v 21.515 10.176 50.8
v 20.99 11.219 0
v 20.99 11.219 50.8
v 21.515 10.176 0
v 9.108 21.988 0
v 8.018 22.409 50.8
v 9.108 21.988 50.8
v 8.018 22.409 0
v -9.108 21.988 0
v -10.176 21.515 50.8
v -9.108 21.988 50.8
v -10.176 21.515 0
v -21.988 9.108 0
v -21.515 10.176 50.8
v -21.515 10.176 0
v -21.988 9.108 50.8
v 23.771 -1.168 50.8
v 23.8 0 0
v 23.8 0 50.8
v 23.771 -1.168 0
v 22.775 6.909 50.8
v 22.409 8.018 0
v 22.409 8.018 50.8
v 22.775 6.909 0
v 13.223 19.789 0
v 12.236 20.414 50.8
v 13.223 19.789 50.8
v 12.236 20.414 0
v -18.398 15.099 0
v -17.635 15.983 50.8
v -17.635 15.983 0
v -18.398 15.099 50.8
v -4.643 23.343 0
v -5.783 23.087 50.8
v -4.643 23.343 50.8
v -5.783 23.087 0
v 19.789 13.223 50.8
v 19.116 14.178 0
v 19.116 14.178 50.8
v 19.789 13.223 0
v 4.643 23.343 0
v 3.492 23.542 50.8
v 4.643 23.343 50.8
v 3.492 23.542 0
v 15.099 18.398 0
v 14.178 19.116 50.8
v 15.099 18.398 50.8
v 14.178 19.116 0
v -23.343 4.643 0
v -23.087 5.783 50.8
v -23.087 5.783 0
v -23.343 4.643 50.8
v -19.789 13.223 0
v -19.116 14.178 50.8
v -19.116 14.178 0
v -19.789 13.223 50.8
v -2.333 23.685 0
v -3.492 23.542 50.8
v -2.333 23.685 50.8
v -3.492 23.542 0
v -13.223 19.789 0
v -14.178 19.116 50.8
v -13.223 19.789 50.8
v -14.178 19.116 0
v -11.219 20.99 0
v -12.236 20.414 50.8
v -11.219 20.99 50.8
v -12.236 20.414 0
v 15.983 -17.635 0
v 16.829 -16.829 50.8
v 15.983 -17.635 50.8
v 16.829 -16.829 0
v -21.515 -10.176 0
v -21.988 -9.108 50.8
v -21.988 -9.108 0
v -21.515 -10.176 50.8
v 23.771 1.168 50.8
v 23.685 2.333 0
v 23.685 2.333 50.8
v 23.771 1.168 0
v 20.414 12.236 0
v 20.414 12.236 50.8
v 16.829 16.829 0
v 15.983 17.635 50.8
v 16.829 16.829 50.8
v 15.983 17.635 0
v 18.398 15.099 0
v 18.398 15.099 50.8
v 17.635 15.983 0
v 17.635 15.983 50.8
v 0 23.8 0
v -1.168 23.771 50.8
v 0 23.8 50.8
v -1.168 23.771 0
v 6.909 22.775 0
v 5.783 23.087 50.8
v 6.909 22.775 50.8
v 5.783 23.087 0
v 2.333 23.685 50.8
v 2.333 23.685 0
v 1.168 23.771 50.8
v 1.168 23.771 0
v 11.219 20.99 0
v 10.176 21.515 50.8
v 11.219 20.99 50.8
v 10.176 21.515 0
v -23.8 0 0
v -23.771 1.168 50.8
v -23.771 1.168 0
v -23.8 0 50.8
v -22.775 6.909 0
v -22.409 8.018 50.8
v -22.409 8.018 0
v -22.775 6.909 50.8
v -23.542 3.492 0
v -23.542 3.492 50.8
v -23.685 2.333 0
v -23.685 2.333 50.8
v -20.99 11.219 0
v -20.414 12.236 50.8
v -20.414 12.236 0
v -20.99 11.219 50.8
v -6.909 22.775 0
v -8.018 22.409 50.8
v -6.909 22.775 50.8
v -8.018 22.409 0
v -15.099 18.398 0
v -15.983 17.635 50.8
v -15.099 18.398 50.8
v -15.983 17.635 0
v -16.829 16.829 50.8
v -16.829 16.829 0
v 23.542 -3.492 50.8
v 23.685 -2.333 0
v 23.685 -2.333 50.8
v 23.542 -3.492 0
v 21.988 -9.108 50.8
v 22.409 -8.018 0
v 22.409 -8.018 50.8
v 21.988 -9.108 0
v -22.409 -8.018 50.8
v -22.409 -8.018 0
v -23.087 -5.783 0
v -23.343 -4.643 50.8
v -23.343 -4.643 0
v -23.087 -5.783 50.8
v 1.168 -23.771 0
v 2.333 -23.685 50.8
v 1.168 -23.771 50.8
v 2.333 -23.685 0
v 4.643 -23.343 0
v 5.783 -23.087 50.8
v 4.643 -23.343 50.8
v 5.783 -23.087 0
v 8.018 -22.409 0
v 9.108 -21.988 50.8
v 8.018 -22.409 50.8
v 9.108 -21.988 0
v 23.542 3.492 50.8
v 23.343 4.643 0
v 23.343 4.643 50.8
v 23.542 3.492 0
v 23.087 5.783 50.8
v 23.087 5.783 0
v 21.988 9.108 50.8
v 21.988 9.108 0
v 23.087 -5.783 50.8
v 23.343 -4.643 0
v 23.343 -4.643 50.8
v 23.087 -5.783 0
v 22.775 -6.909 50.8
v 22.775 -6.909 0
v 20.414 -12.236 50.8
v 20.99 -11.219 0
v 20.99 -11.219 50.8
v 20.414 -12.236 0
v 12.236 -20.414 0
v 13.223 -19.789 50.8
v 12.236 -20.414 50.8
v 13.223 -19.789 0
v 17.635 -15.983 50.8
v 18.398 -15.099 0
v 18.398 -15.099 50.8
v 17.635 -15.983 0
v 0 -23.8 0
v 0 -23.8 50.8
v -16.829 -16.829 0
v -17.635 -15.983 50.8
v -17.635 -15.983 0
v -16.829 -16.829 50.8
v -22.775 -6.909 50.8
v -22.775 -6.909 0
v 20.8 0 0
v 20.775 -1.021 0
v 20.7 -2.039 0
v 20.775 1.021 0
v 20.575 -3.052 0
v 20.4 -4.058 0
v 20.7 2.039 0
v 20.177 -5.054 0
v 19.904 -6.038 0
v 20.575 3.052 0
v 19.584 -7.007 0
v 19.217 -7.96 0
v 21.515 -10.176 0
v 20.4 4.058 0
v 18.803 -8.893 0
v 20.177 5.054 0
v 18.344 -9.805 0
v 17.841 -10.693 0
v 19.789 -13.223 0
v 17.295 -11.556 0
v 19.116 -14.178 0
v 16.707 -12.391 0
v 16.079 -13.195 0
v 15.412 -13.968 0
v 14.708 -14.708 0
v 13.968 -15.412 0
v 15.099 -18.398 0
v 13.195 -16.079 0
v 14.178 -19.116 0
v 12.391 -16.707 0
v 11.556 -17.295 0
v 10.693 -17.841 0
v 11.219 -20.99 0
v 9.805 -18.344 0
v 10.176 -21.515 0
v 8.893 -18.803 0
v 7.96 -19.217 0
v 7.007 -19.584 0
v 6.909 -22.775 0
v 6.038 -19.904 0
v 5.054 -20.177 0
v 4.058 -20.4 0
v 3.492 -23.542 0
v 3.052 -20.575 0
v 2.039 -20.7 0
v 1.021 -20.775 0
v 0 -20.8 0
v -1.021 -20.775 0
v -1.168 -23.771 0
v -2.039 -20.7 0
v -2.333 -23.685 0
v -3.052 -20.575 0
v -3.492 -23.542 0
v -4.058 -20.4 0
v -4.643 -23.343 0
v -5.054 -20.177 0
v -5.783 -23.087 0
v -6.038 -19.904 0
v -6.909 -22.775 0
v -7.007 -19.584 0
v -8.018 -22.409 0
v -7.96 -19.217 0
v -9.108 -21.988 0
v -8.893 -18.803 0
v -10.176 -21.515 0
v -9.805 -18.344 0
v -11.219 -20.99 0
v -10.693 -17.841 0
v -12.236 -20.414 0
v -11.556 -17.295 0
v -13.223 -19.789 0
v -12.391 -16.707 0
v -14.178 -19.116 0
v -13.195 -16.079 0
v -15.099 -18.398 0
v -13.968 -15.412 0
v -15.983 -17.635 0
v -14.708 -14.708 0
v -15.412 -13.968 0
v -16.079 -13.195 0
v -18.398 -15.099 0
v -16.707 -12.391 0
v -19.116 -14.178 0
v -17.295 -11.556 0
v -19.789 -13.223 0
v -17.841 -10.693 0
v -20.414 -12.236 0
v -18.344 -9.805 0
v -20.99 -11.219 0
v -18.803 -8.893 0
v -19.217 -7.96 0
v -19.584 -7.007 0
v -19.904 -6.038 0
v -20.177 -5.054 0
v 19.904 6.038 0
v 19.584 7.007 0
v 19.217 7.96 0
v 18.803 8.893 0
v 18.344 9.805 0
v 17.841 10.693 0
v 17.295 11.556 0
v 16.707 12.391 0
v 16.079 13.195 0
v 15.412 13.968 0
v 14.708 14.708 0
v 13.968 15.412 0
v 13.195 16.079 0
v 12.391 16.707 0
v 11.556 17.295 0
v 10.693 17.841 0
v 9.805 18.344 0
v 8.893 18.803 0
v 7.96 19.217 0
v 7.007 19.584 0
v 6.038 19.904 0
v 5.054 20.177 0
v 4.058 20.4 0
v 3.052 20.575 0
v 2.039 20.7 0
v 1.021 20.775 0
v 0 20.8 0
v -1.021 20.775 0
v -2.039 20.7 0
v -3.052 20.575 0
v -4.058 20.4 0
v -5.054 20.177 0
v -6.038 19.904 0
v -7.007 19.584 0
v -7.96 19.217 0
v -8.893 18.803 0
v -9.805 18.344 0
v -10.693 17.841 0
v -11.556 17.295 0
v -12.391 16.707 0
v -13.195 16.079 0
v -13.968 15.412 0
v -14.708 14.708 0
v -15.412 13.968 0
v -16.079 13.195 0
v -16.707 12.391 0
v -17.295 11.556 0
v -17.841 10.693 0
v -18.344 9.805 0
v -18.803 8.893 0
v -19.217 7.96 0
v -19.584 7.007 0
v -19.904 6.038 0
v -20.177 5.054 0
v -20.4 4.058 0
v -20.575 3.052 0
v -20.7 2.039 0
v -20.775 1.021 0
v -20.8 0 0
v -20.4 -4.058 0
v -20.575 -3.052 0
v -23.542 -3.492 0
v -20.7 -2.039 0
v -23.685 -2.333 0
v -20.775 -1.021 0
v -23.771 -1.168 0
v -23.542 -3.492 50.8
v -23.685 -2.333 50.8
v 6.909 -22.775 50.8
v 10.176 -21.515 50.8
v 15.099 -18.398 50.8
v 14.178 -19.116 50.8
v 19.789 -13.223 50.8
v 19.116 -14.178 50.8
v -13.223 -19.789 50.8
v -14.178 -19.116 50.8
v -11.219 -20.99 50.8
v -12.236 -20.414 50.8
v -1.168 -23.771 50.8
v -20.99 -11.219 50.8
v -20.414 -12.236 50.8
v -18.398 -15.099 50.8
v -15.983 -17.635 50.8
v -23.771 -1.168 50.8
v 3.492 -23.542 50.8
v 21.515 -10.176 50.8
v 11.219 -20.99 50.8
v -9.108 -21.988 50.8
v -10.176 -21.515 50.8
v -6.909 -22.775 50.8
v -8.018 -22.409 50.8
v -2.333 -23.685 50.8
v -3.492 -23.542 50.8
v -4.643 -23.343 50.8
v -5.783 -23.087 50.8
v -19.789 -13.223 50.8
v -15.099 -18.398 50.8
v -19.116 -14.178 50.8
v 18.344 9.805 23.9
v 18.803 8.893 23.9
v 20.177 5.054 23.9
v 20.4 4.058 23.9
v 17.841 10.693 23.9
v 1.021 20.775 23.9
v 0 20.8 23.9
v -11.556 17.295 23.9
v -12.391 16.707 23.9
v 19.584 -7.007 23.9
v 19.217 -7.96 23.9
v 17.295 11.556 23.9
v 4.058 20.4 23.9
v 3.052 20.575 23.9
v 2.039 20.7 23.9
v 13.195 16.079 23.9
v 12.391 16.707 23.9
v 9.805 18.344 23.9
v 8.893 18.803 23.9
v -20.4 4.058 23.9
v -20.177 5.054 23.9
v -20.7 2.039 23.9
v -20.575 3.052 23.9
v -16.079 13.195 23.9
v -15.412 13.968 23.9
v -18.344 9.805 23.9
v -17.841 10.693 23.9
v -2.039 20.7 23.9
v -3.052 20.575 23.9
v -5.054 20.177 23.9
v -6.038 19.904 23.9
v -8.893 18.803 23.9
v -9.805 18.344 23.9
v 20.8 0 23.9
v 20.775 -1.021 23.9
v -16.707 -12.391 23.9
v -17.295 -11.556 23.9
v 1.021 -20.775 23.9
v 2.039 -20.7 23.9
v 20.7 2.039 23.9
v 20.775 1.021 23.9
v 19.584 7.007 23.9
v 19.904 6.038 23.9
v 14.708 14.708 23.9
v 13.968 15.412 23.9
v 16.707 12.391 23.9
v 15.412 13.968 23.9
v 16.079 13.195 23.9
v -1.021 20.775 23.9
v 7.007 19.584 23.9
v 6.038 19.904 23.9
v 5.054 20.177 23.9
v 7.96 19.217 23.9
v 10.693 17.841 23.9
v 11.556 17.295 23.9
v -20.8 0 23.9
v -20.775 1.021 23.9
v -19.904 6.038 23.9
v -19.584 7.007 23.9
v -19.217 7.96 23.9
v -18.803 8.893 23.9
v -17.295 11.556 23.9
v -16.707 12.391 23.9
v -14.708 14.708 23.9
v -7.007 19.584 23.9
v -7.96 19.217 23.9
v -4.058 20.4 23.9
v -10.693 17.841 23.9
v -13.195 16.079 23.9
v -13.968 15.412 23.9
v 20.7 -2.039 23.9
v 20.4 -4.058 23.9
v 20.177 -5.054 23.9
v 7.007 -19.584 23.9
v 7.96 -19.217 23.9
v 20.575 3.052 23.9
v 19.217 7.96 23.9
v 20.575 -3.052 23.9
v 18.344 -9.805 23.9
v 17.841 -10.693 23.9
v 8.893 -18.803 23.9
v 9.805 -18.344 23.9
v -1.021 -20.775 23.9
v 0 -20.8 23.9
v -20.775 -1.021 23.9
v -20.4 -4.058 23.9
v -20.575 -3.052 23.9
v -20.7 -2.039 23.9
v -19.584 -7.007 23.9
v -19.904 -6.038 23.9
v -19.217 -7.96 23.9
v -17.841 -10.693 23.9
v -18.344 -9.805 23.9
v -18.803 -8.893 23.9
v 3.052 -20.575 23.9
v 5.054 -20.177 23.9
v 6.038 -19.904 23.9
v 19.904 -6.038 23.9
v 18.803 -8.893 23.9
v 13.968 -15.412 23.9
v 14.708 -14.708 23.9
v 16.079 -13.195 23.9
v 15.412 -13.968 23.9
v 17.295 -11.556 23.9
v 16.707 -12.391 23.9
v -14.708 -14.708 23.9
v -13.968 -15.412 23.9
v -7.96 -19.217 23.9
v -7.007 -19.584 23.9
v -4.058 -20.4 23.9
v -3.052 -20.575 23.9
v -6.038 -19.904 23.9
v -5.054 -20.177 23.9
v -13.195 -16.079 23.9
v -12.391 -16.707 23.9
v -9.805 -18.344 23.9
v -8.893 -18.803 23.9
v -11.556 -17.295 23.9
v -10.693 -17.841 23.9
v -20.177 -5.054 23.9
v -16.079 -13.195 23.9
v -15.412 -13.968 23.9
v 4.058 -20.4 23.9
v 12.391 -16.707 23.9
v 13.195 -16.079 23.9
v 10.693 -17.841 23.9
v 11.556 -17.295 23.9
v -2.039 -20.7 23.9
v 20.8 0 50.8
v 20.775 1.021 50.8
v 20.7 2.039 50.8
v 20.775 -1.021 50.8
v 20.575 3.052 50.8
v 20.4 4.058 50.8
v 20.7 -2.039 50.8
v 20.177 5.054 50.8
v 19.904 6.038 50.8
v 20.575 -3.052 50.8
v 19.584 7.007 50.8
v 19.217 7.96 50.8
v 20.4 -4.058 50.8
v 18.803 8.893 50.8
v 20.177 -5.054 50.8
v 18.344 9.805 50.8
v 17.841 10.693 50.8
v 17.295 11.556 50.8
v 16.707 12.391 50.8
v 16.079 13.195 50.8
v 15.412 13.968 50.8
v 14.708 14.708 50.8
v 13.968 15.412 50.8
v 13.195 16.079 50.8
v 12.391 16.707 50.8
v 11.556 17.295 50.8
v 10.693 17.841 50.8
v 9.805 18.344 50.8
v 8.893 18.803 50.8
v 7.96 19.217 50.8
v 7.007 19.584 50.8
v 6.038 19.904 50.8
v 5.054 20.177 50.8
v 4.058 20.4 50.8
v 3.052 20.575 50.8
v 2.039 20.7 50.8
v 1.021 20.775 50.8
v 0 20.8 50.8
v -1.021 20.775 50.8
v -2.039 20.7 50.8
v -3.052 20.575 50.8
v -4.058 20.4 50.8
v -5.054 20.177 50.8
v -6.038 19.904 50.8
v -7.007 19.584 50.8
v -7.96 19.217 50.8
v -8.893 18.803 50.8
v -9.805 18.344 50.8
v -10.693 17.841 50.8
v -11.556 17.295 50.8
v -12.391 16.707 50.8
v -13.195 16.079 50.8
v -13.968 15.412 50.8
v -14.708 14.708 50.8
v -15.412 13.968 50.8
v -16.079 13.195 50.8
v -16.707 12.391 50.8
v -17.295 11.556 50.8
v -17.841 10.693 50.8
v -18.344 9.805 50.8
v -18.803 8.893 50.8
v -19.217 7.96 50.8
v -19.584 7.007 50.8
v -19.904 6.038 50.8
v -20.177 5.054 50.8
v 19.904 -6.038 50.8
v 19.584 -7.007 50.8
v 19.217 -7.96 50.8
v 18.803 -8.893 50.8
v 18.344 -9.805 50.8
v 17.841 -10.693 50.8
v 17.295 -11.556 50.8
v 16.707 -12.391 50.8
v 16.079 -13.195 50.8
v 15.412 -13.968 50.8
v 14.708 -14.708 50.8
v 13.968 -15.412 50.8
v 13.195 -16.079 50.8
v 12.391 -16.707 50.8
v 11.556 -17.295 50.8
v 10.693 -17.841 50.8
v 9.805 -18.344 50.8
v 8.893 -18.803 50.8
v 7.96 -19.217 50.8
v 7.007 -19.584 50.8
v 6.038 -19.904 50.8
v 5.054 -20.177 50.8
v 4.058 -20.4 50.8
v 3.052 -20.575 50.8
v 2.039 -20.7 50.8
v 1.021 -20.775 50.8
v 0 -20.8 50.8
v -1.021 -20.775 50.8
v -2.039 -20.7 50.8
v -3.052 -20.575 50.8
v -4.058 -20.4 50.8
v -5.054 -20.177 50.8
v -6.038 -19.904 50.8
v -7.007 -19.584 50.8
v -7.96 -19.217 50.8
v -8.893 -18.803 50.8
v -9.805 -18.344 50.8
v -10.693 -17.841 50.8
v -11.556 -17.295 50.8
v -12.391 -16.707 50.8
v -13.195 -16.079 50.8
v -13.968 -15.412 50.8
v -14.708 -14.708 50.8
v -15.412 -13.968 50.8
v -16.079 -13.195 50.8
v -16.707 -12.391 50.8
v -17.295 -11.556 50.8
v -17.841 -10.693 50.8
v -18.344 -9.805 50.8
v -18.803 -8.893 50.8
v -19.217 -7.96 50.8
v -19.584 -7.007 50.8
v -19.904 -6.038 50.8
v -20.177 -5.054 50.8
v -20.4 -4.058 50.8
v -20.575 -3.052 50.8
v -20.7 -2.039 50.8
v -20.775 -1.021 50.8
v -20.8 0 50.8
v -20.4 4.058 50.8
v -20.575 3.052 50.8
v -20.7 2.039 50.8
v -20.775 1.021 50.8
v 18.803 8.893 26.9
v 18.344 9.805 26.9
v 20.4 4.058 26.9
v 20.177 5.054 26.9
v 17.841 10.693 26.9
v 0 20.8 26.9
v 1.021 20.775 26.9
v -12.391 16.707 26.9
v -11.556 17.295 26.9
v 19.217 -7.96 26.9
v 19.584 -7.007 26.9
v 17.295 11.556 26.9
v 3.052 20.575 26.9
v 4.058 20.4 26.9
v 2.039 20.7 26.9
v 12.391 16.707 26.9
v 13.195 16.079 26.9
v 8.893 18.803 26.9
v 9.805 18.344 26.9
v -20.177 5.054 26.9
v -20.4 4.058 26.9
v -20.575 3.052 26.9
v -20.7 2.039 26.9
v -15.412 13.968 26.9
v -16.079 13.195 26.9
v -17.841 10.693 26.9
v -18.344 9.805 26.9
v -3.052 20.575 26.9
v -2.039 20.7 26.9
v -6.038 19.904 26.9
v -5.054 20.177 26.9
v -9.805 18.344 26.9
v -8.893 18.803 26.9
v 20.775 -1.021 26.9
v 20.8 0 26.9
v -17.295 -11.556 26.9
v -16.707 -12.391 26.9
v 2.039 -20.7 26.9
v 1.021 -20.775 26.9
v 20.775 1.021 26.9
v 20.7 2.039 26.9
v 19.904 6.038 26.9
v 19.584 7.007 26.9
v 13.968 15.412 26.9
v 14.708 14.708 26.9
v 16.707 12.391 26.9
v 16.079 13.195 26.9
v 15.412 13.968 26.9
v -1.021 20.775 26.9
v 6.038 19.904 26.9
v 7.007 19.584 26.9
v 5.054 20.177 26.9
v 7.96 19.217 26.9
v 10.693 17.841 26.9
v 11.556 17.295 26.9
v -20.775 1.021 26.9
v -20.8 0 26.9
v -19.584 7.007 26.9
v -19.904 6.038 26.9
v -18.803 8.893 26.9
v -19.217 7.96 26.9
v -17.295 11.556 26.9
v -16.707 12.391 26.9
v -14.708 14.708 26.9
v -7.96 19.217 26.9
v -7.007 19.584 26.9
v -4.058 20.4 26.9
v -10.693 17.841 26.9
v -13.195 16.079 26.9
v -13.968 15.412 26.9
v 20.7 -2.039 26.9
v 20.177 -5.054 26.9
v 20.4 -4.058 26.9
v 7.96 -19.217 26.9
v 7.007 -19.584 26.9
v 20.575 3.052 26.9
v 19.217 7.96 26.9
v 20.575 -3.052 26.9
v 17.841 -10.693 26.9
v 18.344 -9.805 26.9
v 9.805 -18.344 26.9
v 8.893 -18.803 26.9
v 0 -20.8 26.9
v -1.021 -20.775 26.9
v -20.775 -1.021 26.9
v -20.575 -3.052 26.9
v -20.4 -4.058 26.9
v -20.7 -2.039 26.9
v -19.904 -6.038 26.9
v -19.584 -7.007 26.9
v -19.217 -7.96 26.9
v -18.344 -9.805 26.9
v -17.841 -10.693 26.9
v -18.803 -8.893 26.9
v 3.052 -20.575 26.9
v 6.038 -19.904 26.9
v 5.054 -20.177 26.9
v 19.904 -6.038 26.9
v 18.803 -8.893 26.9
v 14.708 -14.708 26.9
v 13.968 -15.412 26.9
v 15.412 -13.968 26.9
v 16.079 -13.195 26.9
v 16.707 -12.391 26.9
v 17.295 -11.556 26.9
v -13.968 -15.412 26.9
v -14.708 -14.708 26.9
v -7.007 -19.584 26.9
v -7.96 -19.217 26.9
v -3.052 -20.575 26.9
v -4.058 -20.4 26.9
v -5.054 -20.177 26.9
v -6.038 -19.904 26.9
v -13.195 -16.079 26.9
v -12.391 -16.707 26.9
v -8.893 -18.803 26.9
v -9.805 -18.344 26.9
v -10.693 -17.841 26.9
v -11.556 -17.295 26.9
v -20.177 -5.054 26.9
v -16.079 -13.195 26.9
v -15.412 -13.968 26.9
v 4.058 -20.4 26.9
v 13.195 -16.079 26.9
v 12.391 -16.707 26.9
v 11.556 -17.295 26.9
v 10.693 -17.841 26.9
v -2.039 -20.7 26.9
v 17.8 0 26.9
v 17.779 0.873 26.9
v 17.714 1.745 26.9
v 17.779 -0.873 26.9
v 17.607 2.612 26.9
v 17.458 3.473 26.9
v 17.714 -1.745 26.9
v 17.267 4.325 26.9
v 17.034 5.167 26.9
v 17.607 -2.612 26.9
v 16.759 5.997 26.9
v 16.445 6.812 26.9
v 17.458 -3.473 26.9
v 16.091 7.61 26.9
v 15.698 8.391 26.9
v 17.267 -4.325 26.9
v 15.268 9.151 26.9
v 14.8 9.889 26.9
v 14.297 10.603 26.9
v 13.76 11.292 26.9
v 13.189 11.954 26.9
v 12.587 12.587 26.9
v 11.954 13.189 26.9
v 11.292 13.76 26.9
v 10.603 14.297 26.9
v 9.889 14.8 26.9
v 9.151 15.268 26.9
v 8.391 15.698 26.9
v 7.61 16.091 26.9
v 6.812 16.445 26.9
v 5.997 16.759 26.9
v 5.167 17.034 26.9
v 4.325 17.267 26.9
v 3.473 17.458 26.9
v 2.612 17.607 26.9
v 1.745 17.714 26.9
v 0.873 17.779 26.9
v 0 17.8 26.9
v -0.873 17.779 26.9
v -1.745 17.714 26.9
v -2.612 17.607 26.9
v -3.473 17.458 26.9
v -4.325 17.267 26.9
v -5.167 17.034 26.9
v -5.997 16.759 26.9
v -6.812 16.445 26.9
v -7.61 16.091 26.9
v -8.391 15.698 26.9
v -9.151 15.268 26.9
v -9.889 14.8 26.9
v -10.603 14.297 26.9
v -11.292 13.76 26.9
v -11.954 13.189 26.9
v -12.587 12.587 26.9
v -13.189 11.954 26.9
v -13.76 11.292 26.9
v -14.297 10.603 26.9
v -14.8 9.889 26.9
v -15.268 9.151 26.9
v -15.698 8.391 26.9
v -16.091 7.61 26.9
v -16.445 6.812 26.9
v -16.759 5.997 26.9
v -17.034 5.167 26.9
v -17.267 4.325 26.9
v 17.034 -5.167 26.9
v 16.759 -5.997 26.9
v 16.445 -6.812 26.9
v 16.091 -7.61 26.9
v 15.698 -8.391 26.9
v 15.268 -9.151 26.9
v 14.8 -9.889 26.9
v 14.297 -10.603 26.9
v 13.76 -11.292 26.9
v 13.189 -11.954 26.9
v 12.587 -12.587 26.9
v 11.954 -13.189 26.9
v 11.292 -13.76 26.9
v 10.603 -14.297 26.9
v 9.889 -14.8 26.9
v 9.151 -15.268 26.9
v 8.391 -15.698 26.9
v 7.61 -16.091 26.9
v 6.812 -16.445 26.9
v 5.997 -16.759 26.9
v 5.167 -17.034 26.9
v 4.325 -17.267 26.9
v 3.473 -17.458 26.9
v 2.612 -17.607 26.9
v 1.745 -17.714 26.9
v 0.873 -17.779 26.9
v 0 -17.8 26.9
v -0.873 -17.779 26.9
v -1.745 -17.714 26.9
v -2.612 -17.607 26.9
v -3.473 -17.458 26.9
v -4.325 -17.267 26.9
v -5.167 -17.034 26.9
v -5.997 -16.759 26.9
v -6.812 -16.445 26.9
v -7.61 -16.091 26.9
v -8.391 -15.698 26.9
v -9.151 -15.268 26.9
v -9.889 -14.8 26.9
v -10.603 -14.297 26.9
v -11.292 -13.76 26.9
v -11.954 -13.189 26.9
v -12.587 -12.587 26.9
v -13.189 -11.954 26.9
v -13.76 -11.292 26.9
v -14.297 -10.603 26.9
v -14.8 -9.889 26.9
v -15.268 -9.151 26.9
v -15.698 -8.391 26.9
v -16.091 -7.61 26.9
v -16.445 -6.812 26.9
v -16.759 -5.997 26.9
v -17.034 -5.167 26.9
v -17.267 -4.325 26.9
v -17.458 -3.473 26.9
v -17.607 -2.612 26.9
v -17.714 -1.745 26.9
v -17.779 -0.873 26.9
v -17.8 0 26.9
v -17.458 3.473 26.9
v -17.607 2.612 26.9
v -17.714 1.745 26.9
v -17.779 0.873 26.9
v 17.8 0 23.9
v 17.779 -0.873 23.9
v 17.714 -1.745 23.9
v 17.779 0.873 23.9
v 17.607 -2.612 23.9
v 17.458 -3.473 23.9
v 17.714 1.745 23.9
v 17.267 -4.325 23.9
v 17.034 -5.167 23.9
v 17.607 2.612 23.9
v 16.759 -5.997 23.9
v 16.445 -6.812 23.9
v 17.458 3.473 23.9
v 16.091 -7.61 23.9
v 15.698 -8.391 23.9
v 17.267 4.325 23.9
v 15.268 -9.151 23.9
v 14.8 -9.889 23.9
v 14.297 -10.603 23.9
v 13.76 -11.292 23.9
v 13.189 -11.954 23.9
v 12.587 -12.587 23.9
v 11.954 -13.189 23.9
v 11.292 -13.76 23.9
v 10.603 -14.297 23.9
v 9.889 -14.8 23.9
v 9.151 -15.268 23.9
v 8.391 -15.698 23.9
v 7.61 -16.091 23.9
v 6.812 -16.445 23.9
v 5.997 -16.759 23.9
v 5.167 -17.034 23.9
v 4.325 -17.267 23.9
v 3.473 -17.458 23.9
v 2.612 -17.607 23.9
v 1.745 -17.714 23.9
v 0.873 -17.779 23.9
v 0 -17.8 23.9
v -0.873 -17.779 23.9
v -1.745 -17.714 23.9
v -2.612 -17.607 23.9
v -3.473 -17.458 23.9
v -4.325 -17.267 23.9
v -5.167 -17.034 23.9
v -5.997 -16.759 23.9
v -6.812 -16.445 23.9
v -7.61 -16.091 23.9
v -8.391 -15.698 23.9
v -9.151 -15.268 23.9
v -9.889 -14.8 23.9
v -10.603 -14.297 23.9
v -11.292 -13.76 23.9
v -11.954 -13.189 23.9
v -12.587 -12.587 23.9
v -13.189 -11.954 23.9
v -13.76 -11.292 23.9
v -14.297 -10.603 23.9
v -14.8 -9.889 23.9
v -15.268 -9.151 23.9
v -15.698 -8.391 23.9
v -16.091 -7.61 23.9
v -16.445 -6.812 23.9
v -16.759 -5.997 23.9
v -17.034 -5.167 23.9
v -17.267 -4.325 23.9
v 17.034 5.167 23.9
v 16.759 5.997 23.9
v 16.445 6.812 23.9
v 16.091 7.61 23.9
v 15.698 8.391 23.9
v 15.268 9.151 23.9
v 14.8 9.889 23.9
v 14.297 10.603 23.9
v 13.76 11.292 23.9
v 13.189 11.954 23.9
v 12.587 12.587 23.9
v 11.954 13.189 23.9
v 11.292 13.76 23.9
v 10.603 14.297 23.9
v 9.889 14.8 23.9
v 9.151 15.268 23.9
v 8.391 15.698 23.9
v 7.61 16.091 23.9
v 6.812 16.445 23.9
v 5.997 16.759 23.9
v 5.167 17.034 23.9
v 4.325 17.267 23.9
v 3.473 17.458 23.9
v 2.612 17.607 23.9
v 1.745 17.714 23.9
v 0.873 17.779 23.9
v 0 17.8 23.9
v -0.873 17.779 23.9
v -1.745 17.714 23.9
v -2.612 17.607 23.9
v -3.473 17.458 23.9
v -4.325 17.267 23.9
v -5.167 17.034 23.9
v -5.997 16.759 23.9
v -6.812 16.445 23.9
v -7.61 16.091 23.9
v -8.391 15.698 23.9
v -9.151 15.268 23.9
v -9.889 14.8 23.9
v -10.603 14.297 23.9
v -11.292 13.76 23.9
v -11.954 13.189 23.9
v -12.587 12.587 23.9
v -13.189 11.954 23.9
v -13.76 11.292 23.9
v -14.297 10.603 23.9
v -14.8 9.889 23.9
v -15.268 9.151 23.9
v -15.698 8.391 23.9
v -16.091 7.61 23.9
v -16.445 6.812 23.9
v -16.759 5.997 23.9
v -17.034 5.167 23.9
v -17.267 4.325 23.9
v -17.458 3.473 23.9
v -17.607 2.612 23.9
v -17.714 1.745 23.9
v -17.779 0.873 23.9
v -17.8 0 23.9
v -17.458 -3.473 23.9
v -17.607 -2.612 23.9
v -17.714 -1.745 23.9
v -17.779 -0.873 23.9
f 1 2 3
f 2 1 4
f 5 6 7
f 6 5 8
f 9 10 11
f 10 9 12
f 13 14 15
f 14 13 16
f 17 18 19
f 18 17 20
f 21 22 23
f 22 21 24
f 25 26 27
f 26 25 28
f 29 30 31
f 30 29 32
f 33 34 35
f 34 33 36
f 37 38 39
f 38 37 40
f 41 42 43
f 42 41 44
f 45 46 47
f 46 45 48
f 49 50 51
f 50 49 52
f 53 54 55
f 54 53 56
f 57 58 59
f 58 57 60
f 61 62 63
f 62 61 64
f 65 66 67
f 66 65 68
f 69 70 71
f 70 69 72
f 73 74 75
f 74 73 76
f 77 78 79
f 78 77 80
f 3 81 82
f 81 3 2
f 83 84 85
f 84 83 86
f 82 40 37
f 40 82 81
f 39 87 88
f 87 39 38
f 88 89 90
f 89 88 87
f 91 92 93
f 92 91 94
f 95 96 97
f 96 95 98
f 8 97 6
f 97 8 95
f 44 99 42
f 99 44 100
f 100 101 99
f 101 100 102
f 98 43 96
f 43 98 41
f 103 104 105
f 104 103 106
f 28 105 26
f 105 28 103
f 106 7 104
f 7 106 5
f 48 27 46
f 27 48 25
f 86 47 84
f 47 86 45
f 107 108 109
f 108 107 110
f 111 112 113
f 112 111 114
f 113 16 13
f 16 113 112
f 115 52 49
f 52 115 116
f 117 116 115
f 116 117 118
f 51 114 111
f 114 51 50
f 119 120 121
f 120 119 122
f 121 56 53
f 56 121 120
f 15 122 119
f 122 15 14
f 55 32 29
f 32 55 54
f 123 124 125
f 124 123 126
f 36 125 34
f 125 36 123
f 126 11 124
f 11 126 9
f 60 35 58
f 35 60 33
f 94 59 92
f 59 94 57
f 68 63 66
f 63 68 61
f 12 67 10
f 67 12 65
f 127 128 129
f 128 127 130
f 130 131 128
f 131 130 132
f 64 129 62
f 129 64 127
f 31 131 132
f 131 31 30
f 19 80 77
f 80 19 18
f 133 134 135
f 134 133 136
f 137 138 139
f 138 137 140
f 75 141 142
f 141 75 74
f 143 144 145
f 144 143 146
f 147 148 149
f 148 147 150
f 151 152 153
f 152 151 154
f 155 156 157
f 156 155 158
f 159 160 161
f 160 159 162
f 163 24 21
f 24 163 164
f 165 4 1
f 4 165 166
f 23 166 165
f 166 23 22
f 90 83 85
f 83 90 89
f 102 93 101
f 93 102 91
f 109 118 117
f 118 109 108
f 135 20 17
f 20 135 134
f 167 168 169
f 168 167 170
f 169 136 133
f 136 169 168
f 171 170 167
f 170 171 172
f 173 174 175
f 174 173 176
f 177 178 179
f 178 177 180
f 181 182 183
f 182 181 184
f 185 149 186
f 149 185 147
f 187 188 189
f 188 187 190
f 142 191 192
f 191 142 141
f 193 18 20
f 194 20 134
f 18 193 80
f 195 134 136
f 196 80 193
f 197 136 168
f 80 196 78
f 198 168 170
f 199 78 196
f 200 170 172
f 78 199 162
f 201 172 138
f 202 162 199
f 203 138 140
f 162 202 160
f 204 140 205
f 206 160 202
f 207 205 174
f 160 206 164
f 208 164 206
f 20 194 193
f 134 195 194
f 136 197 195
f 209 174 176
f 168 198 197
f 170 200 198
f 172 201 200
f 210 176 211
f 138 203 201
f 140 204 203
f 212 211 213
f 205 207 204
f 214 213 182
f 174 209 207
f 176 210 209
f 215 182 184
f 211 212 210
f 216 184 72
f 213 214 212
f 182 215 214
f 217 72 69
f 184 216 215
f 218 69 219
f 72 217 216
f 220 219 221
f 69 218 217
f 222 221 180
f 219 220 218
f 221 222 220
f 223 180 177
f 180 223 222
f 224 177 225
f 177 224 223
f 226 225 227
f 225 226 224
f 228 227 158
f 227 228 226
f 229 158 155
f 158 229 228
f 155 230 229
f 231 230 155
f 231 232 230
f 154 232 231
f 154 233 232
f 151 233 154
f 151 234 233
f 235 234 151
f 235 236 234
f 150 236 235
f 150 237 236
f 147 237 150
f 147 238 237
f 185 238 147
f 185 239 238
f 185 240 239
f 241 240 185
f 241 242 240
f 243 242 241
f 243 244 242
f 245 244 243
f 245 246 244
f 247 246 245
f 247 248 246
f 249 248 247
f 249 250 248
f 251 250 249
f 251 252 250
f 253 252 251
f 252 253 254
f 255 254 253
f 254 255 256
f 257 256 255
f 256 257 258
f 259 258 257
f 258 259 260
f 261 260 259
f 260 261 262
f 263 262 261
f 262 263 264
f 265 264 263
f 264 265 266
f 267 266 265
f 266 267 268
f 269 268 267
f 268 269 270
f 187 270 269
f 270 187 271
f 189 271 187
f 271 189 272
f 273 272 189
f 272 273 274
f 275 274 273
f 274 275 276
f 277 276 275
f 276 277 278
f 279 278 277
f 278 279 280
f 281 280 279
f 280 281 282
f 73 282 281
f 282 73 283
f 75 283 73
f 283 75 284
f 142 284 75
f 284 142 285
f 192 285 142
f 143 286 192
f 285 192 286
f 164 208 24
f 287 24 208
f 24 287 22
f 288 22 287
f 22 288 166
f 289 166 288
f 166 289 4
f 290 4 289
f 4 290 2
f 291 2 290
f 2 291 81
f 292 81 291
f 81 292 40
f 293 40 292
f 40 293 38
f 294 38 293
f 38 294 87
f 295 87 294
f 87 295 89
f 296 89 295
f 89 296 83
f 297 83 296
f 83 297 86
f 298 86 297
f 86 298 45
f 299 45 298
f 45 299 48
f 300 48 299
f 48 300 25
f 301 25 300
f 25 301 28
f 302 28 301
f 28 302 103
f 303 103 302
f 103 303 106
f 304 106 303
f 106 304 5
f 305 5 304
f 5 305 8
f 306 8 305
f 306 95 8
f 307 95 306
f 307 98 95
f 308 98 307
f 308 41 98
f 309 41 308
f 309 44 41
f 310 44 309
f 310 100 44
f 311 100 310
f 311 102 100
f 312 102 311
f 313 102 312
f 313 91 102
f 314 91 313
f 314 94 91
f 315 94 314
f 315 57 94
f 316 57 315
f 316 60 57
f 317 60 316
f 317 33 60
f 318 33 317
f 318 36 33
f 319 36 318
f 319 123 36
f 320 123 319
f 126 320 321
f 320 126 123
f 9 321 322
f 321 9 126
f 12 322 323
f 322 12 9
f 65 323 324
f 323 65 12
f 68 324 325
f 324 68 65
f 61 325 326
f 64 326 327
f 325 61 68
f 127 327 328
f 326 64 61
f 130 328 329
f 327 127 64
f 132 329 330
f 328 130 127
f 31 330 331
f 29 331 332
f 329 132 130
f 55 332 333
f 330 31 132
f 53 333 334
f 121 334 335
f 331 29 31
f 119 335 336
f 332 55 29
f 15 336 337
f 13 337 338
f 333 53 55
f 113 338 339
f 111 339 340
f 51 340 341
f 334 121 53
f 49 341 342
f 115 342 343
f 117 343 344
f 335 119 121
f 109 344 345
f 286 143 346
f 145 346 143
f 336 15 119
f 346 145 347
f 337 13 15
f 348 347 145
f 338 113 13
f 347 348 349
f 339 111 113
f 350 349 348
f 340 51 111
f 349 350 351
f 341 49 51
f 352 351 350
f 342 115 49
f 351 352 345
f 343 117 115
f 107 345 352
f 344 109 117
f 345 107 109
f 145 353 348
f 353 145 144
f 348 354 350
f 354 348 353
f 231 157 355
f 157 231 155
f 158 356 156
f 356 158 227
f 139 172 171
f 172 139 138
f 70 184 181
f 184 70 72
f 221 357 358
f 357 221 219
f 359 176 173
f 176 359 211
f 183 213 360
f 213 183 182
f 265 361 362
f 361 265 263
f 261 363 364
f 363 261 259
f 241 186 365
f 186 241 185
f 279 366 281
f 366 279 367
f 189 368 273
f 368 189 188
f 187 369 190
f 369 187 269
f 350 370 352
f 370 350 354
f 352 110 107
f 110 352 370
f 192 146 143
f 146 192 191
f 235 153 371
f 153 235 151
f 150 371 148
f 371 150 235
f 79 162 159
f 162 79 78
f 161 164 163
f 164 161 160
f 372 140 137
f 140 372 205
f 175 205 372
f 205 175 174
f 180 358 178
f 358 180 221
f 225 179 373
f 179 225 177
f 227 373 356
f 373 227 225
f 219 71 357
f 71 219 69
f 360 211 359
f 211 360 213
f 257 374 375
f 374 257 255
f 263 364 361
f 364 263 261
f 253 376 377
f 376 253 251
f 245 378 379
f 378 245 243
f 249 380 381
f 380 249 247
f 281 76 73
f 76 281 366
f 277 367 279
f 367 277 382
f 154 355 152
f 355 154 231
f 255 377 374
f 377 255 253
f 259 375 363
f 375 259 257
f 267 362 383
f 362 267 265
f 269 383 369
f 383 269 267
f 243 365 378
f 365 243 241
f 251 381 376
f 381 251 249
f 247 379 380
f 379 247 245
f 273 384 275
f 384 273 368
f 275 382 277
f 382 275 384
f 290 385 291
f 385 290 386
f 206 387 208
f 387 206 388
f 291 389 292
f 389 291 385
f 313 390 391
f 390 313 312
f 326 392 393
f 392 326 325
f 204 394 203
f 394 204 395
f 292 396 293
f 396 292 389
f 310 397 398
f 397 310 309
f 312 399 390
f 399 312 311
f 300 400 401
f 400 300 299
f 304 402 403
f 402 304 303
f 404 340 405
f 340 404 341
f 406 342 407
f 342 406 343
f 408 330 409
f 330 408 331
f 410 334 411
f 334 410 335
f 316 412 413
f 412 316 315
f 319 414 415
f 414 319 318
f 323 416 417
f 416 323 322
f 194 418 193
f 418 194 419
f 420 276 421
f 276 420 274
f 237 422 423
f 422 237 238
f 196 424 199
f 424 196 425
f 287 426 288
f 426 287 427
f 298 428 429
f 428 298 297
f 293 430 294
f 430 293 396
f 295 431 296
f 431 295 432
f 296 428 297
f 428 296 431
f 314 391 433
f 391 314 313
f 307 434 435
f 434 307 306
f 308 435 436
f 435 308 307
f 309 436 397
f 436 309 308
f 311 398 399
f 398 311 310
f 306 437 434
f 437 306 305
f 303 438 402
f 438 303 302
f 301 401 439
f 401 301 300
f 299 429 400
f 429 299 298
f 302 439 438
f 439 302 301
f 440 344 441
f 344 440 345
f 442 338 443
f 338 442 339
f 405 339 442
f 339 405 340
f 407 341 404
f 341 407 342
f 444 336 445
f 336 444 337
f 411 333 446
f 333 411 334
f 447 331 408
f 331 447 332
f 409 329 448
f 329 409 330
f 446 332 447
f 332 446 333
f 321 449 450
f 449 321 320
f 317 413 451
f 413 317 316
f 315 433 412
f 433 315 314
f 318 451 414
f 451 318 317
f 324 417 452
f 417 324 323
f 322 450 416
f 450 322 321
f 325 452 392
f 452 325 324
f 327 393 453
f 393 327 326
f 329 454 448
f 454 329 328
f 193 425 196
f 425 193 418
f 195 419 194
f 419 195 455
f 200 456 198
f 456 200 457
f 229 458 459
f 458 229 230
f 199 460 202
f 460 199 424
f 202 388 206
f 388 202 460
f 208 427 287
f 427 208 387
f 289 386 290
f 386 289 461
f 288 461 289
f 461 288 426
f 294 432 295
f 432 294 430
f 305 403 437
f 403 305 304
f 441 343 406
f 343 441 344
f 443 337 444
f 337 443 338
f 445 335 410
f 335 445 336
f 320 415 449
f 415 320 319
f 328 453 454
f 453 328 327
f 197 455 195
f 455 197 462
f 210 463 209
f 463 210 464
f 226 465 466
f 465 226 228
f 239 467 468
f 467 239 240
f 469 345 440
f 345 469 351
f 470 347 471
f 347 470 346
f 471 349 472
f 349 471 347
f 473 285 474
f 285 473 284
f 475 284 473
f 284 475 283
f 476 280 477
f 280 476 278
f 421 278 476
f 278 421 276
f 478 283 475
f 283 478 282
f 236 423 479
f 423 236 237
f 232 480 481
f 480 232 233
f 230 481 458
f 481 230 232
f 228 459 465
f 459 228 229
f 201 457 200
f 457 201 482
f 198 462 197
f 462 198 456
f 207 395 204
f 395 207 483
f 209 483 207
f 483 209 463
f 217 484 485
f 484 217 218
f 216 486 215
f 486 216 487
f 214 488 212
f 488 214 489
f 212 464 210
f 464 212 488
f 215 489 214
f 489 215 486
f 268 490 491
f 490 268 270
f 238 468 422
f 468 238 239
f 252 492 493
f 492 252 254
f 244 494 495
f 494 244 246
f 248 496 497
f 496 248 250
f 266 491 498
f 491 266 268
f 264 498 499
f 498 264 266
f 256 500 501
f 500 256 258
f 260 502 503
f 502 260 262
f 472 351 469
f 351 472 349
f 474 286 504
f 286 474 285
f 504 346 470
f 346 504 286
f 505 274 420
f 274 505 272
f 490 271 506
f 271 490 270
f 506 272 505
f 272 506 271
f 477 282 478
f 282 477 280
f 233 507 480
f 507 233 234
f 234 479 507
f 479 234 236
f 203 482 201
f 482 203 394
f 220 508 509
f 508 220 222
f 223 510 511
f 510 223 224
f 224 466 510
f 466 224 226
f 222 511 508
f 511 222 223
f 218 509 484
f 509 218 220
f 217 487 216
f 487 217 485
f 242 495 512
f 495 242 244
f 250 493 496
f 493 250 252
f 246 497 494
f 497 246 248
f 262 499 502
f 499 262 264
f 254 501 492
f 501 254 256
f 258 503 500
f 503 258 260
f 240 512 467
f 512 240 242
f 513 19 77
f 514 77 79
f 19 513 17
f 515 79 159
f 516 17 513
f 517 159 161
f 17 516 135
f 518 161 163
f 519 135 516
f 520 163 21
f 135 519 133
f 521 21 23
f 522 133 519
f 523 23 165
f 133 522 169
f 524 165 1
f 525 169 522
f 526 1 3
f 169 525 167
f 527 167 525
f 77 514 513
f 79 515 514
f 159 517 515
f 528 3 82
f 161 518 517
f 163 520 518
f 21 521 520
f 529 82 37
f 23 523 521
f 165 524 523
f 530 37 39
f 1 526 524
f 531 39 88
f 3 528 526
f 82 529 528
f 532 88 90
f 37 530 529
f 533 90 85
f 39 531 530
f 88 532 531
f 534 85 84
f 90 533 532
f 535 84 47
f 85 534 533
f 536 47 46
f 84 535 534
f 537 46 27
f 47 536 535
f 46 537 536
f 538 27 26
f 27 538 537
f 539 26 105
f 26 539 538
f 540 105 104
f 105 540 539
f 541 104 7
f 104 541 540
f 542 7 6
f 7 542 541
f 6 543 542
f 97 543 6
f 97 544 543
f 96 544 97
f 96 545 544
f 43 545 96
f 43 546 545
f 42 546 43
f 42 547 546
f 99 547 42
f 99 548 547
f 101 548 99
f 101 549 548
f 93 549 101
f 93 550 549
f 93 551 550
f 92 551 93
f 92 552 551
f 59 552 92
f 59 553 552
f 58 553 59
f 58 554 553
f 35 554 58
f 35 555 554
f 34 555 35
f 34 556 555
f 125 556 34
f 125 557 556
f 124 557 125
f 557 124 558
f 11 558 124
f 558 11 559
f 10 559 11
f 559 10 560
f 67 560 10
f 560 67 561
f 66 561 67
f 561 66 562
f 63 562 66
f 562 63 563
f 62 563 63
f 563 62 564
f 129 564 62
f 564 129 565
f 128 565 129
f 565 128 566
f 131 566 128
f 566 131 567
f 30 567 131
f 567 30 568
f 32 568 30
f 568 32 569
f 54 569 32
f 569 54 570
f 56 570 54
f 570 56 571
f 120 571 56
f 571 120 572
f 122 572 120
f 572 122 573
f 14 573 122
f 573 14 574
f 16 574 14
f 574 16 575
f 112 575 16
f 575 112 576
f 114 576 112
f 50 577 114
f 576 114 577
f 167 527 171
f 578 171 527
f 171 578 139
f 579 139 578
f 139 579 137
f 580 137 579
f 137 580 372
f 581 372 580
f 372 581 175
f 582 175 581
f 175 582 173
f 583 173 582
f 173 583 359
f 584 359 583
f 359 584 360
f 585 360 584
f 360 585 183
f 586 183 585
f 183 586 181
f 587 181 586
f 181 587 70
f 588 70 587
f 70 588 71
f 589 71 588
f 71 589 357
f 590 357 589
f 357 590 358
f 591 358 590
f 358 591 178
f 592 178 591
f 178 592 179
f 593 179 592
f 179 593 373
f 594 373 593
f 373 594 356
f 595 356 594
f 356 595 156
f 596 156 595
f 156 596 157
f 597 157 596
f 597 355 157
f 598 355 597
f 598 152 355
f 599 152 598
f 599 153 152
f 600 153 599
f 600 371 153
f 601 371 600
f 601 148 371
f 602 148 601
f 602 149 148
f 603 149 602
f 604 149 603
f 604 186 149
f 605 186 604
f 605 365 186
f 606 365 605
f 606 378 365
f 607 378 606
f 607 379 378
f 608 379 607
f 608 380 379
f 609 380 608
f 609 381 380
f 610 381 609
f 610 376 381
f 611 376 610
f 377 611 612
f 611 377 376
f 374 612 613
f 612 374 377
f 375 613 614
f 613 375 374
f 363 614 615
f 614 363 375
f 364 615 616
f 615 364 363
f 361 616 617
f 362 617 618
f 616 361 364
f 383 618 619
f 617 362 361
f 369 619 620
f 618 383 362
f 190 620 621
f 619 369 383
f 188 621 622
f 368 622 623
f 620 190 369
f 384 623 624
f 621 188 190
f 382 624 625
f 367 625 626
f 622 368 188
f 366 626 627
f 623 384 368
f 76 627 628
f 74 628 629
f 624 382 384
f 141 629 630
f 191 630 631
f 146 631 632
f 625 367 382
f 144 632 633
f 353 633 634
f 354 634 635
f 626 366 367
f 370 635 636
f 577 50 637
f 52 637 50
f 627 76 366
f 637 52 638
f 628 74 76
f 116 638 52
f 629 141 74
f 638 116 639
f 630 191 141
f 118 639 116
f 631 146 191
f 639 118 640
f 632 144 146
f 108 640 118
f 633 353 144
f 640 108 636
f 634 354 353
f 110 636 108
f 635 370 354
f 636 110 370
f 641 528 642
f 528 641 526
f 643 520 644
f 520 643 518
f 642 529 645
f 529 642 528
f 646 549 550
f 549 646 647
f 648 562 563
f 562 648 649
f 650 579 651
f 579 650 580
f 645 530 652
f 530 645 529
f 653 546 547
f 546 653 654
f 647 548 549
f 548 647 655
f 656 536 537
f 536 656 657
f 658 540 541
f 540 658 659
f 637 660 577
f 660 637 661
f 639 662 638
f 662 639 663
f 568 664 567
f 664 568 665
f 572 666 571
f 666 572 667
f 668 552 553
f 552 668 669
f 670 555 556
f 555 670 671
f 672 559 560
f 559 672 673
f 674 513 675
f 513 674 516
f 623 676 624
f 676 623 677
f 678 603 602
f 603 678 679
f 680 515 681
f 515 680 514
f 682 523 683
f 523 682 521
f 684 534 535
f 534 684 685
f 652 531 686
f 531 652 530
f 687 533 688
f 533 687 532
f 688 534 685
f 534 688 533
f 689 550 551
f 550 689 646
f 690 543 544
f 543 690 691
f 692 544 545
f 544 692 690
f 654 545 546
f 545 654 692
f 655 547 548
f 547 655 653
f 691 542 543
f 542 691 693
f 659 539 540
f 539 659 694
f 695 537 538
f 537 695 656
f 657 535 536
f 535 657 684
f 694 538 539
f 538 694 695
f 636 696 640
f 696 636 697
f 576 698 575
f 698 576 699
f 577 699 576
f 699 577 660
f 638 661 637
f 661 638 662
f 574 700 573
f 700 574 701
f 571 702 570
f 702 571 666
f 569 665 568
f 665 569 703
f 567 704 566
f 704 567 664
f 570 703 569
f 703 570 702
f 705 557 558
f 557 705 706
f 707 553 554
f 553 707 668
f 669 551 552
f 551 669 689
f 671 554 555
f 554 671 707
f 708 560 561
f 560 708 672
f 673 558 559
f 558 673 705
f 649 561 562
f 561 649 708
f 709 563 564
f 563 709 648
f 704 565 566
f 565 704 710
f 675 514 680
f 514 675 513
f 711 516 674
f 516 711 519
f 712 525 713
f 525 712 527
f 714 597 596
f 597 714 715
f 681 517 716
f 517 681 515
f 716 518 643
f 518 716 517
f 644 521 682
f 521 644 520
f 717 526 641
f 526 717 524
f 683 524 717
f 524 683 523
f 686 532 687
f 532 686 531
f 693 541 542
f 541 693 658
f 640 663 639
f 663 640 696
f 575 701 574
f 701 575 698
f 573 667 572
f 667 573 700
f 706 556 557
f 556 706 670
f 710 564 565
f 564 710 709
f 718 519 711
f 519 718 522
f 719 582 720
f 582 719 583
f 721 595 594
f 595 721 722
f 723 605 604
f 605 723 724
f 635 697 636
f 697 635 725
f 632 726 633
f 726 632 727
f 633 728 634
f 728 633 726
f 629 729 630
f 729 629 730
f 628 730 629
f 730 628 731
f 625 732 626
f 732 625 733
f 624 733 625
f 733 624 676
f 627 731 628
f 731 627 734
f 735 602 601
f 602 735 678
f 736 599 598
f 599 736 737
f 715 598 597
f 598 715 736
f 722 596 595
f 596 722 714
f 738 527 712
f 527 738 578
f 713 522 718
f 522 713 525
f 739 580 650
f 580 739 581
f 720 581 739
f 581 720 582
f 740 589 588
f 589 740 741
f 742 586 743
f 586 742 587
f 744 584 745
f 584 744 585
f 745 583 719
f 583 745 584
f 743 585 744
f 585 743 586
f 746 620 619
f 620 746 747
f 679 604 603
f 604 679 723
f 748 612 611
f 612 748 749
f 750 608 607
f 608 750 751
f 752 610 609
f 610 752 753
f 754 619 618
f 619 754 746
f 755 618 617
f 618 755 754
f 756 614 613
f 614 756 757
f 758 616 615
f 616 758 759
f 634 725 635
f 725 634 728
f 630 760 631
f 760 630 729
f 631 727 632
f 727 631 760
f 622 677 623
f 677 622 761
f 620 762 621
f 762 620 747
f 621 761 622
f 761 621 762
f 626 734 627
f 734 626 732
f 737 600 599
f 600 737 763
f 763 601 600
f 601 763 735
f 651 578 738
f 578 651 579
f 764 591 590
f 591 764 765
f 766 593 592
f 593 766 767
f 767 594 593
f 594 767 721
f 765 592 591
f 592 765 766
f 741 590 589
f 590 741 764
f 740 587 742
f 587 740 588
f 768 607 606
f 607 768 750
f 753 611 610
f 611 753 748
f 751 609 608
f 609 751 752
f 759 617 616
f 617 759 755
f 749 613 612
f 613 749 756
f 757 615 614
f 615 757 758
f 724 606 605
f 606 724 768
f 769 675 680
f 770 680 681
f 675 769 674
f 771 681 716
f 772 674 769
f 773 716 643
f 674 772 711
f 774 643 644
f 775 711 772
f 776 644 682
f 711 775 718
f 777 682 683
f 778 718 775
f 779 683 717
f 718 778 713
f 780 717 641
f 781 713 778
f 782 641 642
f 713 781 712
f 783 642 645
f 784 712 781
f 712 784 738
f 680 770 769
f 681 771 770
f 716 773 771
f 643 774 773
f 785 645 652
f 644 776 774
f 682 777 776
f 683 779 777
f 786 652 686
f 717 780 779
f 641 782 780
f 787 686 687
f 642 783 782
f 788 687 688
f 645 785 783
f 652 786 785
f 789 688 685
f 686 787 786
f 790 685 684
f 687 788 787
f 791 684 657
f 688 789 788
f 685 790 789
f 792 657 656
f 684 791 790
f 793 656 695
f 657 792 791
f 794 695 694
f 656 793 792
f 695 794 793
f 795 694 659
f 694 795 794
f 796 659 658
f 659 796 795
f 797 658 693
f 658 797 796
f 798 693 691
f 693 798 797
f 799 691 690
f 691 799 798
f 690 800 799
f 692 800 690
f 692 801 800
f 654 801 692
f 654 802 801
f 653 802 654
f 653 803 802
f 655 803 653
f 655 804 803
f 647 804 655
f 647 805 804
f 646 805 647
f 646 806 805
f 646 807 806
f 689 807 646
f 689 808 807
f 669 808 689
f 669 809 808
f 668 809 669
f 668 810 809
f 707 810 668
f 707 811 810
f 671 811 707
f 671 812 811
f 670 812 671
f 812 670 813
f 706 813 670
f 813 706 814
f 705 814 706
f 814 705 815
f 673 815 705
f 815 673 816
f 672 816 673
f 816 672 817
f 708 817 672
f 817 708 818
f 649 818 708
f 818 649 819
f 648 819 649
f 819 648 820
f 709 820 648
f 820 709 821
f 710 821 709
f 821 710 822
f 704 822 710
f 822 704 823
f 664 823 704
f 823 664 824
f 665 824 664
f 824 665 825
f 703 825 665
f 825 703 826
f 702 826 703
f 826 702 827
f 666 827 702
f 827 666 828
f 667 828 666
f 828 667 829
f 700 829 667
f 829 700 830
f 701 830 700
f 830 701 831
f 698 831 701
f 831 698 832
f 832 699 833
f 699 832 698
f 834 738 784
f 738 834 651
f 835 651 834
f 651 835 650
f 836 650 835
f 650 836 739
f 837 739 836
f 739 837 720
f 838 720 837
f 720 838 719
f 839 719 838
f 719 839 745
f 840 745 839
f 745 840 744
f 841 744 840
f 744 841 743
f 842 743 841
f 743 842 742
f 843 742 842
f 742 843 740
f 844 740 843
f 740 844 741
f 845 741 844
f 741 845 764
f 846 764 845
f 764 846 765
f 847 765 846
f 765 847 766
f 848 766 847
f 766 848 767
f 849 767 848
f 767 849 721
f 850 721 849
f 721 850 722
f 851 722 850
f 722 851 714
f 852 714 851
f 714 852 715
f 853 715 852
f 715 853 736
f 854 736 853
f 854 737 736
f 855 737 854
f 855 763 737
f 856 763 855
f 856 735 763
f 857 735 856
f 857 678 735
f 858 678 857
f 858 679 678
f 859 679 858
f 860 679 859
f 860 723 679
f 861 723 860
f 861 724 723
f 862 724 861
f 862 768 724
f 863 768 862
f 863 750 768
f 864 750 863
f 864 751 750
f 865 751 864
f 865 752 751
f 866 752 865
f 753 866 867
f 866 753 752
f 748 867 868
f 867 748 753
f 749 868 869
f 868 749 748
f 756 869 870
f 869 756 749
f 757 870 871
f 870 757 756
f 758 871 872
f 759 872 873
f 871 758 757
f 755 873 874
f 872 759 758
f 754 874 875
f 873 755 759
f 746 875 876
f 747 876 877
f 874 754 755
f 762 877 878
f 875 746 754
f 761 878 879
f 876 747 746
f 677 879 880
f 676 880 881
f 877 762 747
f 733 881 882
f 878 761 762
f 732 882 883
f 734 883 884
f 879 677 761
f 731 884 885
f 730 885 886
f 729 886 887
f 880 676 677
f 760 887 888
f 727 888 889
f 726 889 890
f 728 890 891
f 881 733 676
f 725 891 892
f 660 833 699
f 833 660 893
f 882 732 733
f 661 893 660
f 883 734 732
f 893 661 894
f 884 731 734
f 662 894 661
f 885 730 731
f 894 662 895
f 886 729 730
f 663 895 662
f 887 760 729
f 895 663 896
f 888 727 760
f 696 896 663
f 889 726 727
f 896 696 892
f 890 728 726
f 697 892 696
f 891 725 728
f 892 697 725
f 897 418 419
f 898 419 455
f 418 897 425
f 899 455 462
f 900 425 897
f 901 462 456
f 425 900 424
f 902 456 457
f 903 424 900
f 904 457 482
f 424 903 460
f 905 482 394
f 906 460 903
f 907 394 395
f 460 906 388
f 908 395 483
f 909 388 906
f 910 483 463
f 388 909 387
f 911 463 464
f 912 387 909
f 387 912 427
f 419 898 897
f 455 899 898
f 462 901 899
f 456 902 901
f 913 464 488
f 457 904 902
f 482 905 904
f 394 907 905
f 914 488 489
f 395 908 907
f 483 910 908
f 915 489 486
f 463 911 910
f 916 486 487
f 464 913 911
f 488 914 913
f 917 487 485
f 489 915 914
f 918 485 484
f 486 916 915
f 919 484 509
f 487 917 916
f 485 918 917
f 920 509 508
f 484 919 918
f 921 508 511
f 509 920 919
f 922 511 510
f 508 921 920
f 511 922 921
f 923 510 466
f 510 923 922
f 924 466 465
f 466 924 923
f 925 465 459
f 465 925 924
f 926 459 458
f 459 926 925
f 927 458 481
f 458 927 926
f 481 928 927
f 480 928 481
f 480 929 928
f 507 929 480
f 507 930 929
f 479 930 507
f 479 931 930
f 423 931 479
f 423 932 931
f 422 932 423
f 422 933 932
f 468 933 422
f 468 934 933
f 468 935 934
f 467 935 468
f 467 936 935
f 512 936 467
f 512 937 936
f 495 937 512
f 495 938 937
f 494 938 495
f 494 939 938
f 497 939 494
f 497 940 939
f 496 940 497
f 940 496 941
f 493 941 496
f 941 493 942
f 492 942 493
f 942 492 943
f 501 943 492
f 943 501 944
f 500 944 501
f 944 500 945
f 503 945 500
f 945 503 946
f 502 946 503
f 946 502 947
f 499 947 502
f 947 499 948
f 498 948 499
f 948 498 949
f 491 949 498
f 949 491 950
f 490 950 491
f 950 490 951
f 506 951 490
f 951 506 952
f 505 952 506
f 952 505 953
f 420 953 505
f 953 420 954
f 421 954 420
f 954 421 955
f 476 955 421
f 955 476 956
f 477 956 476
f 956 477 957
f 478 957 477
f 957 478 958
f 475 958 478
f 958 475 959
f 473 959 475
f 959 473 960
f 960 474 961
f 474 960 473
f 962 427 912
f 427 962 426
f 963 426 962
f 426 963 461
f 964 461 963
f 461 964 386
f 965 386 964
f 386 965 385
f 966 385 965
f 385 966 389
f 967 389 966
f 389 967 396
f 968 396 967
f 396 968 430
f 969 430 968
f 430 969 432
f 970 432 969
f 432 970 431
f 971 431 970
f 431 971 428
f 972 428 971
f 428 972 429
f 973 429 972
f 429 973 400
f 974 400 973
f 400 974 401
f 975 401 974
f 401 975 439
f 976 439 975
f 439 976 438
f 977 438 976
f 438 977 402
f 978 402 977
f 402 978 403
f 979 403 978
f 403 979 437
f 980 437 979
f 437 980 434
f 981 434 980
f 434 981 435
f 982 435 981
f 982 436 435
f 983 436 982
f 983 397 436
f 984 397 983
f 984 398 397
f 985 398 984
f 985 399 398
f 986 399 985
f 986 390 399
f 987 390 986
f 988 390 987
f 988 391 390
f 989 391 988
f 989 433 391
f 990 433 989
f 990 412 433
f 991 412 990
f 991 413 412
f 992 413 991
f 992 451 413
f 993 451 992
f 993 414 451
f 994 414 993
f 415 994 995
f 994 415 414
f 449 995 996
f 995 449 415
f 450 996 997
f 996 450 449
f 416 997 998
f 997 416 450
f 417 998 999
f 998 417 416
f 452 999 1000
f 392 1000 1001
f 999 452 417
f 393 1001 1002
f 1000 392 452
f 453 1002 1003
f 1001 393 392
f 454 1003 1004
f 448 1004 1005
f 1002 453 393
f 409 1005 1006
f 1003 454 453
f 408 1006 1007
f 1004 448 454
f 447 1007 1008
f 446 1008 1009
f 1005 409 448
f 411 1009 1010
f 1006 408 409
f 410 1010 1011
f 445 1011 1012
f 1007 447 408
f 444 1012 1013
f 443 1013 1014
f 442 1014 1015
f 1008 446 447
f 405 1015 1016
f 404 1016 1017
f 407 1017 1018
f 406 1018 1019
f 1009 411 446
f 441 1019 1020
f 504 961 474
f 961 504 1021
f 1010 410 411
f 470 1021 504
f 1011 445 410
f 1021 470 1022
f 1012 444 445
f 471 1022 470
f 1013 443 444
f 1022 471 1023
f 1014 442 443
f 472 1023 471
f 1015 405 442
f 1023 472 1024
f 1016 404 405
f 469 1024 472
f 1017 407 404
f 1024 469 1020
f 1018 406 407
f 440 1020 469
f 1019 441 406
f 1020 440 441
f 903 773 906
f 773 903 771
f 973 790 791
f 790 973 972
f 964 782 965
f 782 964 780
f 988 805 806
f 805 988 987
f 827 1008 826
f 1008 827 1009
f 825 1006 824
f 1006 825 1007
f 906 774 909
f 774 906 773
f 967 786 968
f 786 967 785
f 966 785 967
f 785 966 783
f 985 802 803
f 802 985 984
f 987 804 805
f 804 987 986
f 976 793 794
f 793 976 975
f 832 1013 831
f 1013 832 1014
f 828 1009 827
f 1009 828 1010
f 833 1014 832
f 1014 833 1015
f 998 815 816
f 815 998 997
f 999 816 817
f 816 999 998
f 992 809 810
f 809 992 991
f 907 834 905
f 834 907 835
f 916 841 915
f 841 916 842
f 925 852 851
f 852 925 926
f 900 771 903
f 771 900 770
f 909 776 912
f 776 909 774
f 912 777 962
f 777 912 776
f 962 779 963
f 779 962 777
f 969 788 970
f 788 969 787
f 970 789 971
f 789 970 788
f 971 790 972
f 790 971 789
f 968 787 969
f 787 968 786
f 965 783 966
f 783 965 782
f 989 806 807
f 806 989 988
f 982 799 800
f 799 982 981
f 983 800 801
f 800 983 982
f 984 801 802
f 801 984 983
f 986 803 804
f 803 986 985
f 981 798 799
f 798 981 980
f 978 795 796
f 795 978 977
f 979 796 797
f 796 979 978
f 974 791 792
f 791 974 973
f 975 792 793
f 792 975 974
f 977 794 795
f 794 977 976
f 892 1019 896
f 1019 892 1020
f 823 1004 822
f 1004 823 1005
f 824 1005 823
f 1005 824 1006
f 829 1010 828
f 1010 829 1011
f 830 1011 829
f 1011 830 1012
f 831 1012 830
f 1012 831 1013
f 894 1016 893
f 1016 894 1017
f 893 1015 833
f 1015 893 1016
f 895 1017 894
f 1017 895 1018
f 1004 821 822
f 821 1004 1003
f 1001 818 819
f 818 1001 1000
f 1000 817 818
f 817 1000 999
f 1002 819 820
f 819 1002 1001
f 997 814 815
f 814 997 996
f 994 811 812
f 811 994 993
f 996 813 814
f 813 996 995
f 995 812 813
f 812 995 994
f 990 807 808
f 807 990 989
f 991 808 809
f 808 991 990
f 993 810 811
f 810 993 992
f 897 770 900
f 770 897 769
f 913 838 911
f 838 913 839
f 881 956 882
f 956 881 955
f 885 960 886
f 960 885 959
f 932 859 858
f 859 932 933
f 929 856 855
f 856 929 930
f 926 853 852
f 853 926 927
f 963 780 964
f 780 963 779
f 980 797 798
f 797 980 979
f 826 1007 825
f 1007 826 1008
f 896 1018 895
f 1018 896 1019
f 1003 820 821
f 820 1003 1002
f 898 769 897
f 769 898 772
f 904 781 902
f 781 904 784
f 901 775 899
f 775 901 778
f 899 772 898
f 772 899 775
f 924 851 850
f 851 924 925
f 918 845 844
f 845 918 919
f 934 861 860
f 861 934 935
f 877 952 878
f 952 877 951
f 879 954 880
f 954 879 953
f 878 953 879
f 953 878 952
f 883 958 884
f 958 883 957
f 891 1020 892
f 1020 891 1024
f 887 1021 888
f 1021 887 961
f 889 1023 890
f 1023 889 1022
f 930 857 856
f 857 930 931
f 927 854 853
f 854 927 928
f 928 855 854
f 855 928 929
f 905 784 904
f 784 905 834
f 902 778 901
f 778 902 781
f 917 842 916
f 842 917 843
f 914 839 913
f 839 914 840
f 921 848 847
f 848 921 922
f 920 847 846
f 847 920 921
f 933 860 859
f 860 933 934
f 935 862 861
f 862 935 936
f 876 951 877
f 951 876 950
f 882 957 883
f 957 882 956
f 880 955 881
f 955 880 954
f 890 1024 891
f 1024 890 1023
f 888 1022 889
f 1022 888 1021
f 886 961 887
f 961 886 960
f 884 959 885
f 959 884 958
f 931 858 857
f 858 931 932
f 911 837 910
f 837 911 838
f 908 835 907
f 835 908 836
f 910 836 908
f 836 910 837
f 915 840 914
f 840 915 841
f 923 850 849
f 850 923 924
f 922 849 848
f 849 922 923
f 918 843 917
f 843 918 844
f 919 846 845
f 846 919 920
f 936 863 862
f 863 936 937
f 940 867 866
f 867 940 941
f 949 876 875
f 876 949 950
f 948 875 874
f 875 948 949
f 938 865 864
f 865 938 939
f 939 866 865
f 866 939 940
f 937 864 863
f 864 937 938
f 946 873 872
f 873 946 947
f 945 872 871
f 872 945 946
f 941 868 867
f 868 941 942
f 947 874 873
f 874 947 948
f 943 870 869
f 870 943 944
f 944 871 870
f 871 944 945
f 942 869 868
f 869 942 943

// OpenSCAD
// ============================================================
//  Vacuum Adapter 02
//  Couples two tubes with the same outer diameter
//    Both tubes: outer diameter = 41.0 mm
//
//  Design: two sockets separated by an internal stop ridge.
//    Each tube slides in from its respective end until it
//    hits the centre ridge.
//
//  Overall length: ~50.8 mm (2 inches)
//  Wall thickness: 3.0 mm
//
//  Print orientation: stand upright on either end – no supports needed.
// ============================================================

$fn = 128;

// ── Parameters ───────────────────────────────────────────────

total_length  = 50.8;     // 2 inches in mm
wall          = 3.0;      // socket wall thickness

// Tube OD and fit
tube_od       = 41.0;
socket_clear  = 0.3;                        // radial clearance
socket_id     = tube_od + 2 * socket_clear; // ~41.6 mm – tube slides in
socket_od     = socket_id + 2 * wall;       // ~47.6 mm

// Each socket occupies half the total length
socket_len    = total_length / 2;           // 25.4 mm each side

// Internal stop ridge at the centre
ridge_h       = 3.0;    // height (thickness) of the ridge along Z
ridge_id      = socket_id - 6.0;  // ~35.6 mm – narrower than the tube OD so tubes butt up against it

// ── Helper: hollow cylinder ───────────────────────────────────
module tube_cyl(length, od, id) {
    difference() {
        cylinder(h = length, d = od);
        translate([0, 0, -0.1])
            cylinder(h = length + 0.2, d = id);
    }
}

// ── Assembly ─────────────────────────────────────────────────
//
//   Z = 0              → open mouth of socket A
//   Z = socket_len     → centre / stop ridge
//   Z = total_length   → open mouth of socket B
//
union() {
    // ── Socket A (bottom half) ────────────────────────────────
    tube_cyl(socket_len, socket_od, socket_id);

    // ── Socket B (top half) ───────────────────────────────────
    translate([0, 0, socket_len])
        tube_cyl(socket_len, socket_od, socket_id);

    // ── Internal stop ridge at centre ────────────────────────
    translate([0, 0, socket_len - ridge_h / 2])
        difference() {
            cylinder(h = ridge_h, d = socket_od);
            translate([0, 0, -0.1])
                cylinder(h = ridge_h + 0.2, d = ridge_id);
        }
}
